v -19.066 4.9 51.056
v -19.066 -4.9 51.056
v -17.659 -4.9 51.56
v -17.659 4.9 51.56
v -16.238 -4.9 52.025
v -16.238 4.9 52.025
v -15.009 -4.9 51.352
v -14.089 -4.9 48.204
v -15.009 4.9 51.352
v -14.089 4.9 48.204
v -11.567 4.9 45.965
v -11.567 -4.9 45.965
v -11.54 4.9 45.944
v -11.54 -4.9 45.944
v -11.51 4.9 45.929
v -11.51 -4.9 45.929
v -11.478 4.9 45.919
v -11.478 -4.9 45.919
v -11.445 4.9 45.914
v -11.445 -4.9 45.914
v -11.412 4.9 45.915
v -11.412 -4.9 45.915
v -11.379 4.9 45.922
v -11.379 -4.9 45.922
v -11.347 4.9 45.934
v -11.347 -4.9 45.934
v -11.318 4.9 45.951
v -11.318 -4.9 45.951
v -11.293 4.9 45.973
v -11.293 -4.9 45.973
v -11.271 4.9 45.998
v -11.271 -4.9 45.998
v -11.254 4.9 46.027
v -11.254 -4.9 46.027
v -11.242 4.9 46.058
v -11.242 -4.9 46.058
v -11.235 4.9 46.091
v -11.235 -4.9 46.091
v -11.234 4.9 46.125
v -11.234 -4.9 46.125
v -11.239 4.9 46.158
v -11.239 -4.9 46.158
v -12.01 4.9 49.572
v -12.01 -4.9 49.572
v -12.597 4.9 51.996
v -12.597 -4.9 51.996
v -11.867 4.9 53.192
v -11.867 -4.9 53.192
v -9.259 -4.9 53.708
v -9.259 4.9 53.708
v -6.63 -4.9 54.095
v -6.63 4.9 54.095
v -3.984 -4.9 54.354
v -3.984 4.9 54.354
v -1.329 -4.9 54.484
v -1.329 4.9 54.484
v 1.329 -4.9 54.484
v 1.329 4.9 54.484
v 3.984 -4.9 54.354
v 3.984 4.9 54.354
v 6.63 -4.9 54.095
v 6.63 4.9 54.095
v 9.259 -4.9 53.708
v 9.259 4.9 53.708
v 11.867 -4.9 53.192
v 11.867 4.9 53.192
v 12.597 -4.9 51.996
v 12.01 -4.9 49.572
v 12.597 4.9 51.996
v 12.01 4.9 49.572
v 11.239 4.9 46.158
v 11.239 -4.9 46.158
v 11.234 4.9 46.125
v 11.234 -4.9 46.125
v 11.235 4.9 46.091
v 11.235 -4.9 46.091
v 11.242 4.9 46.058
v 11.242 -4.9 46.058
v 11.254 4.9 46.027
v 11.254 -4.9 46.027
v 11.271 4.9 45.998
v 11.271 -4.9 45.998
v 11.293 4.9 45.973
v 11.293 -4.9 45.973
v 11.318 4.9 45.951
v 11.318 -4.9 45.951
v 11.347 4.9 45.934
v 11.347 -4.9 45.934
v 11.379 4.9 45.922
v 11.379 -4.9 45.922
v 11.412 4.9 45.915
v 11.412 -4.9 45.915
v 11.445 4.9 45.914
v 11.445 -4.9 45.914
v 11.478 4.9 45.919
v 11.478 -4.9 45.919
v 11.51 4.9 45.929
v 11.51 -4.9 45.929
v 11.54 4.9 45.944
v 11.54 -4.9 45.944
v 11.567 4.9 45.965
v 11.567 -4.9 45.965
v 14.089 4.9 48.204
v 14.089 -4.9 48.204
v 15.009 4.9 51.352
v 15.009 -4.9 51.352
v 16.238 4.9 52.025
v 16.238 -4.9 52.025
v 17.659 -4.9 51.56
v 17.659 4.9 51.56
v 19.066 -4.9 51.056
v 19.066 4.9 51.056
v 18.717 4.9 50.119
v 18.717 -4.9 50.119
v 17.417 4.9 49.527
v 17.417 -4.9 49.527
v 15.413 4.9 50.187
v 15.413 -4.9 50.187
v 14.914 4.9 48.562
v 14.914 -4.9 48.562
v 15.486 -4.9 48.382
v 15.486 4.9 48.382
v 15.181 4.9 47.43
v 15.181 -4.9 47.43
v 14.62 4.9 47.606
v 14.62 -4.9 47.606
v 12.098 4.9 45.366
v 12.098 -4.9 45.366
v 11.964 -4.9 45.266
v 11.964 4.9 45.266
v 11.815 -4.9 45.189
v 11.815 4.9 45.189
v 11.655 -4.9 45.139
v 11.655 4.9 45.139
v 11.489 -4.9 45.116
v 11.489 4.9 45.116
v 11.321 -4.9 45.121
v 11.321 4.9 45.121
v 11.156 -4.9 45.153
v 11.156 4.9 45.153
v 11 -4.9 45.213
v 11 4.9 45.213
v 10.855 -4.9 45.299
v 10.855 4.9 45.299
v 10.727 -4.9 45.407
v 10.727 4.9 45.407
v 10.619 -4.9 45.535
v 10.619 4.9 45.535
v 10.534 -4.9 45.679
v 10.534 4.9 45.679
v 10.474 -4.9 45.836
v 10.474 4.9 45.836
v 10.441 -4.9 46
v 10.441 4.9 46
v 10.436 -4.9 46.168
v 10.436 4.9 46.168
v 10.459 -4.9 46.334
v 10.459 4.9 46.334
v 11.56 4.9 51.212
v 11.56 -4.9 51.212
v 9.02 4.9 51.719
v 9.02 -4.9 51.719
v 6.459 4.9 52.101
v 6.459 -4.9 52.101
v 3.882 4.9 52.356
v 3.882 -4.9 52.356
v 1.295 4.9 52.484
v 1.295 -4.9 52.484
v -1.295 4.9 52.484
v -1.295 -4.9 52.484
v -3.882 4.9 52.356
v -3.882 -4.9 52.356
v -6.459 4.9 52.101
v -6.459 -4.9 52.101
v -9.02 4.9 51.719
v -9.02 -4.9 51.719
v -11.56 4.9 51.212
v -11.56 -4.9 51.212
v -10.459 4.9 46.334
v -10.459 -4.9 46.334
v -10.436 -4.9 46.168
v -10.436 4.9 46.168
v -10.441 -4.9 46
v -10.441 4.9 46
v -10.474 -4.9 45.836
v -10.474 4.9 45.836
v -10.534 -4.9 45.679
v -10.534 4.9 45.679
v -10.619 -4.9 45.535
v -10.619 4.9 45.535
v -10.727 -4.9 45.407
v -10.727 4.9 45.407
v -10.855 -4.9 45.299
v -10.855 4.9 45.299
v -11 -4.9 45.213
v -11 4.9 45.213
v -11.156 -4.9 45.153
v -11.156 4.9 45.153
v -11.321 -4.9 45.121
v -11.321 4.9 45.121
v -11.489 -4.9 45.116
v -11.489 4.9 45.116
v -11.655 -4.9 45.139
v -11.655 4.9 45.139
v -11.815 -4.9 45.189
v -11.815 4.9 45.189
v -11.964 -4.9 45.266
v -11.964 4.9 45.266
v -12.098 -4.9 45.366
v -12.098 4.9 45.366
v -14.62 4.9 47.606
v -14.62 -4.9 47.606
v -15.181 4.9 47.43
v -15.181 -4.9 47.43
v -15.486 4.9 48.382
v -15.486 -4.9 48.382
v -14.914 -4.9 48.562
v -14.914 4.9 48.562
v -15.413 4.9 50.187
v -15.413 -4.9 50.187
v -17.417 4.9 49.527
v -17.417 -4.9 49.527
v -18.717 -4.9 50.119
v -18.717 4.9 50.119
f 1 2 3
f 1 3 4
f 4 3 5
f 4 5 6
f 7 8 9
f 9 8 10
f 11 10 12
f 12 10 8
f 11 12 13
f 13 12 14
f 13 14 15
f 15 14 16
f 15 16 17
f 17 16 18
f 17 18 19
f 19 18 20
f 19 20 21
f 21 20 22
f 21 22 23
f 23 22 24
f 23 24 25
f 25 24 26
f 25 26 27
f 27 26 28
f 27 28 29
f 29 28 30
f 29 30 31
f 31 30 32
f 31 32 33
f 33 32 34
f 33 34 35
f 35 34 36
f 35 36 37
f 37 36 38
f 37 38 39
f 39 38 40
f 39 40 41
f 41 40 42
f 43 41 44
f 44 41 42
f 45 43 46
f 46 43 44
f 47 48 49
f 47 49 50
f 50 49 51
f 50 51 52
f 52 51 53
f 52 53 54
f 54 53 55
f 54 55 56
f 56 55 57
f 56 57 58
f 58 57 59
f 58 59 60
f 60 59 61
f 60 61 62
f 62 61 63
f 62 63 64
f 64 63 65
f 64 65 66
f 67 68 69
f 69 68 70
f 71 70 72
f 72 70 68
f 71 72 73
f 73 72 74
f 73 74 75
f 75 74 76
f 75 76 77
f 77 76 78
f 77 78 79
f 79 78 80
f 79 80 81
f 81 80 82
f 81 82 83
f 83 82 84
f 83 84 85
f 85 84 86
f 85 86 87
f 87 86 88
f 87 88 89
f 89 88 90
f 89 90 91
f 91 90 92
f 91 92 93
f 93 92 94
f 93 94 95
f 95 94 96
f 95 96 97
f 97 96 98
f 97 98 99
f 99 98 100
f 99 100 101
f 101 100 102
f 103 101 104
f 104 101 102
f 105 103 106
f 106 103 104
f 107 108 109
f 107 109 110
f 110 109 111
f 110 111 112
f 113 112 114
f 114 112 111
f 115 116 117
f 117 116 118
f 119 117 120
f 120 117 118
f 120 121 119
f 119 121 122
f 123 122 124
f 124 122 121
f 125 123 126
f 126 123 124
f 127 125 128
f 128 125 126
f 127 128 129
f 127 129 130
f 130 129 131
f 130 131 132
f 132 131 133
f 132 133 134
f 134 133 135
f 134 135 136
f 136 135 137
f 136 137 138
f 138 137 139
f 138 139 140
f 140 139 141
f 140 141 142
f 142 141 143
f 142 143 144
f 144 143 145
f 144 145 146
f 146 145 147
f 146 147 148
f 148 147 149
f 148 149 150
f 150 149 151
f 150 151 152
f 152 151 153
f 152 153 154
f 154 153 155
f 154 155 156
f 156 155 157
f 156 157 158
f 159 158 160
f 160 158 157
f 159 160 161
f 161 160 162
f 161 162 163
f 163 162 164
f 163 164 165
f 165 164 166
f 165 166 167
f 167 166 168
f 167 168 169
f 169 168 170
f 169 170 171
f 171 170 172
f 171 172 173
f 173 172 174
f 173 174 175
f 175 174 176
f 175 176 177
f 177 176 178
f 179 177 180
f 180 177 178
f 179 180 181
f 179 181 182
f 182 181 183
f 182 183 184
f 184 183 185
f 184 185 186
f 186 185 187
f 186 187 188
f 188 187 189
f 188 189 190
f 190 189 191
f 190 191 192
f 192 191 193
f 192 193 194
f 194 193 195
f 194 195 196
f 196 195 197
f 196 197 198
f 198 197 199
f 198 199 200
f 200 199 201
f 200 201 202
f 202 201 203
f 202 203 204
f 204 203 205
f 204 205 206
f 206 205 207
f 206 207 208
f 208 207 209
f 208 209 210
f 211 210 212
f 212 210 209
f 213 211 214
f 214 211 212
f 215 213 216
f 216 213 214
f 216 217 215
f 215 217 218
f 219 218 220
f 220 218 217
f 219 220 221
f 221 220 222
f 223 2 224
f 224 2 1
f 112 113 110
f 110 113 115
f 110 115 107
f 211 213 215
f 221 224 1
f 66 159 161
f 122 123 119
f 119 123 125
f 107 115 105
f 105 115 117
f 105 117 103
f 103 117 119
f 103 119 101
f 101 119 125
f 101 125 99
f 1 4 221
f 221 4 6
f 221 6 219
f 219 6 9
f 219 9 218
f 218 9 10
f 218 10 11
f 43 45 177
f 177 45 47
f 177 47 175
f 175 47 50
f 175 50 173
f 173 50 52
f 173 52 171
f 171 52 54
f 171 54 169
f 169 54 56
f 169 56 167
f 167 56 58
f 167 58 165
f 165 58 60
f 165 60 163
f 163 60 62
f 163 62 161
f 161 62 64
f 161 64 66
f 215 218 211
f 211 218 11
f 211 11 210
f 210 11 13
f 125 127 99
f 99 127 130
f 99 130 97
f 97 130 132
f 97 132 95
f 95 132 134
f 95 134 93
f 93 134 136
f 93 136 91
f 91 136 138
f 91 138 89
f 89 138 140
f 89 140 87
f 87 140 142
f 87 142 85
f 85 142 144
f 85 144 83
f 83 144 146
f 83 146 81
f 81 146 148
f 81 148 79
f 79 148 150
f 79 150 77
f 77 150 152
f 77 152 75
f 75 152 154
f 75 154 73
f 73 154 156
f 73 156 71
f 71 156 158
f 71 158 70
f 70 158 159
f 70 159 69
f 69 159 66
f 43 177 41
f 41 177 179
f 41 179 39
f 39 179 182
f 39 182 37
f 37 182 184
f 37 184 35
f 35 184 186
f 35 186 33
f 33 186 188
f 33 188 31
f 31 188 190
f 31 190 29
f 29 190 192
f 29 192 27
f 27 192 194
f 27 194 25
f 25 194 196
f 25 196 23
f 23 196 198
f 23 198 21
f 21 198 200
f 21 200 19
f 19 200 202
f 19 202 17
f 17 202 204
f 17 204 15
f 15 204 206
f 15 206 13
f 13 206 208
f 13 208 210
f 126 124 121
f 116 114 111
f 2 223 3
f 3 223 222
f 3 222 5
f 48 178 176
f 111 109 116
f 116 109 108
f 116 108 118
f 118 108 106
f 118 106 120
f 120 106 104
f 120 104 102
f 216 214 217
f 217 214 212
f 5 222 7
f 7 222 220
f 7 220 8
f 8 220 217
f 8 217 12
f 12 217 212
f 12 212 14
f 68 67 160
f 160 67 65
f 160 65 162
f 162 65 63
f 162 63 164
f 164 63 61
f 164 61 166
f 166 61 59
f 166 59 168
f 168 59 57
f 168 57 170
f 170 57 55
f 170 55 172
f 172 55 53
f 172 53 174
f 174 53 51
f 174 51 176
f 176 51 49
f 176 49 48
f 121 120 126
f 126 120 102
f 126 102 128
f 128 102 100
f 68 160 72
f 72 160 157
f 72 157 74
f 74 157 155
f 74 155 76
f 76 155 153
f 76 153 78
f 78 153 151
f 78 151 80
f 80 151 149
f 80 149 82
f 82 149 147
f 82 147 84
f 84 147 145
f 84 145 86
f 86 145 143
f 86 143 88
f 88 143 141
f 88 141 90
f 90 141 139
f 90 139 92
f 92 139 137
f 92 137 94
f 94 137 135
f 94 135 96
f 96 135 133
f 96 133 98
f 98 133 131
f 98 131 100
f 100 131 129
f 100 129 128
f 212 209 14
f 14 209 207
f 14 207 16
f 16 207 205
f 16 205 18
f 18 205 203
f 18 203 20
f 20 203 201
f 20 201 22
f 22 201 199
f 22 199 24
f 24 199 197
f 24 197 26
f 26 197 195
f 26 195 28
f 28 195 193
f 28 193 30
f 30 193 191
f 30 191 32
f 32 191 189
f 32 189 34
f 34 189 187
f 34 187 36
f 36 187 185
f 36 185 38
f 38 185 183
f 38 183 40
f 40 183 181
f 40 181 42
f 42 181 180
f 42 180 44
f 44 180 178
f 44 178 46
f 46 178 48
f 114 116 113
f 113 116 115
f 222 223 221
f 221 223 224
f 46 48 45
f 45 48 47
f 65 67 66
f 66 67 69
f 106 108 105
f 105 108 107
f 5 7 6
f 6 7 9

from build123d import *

# Parameters (mm, degrees)
EXTRUDE_1_DEPTH = 4.9
CHAMFER_1_SIZE  = 1


with BuildPart() as part:
    # Эскиз2 → Бобышка-Вытянуть1 (new, symmetric)
    with BuildSketch(Plane(origin=(0, 0, 0), x_dir=(1, 0, 0), z_dir=(0, 1, 0))):
        with BuildLine():
            Line((-19.066440629, -51.056055877), (-18.366754734, -49.182439148))
            ThreePointArc((-18.366754734, -49.182439148), (-16.897260285, -49.706464317), (-15.412844037, -50.186594213))
            Line((-15.412844037, -50.186594213), (-14.972477064, -48.752691521))
            Line((-14.972477064, -48.752691521), (-14.913761468, -48.561504496))
            ThreePointArc((-14.913761468, -48.561504496), (-15.200281945, -48.472584301), (-15.486272306, -48.381973607))
            Line((-15.486272306, -48.381973607), (-15.181424426, -47.429572551))
            Line((-15.181424426, -47.429572551), (-14.620183486, -47.605569368))
            Line((-14.620183486, -47.605569368), (-12.098110765, -45.366305195))
            ThreePointArc((-12.098110765, -45.366305195), (-10.925741151, -45.252992376), (-10.458715596, -46.334277464))
            Line((-10.458715596, -46.334277464), (-11.229357798, -49.748382119))
            Line((-11.229357798, -49.748382119), (-11.559633028, -51.211569828))
            ThreePointArc((-11.559633028, -51.211569828), (0, -52.5), (11.559633028, -51.211569828))
            Line((11.559633028, -51.211569828), (11.229357798, -49.748382119))
            Line((11.229357798, -49.748382119), (10.458715596, -46.334277464))
            ThreePointArc((10.458715596, -46.334277464), (10.925741151, -45.252992376), (12.098110765, -45.366305195))
            Line((12.098110765, -45.366305195), (14.620183486, -47.605569368))
            Line((14.620183486, -47.605569368), (15.181424426, -47.429572551))
            Line((15.181424426, -47.429572551), (15.486272306, -48.381973607))
            ThreePointArc((15.486272306, -48.381973607), (15.200281945, -48.472584301), (14.913761468, -48.561504496))
            Line((14.913761468, -48.561504496), (14.972477064, -48.752691521))
            Line((14.972477064, -48.752691521), (15.412844037, -50.186594213))
            ThreePointArc((15.412844037, -50.186594213), (16.897260285, -49.706464317), (18.366754734, -49.182439148))
            Line((18.366754734, -49.182439148), (19.066440629, -51.056055877))
            ThreePointArc((19.066440629, -51.056055877), (17.189479987, -51.718195809), (15.289593803, -52.311359391))
            Line((15.289593803, -52.311359391), (14.089034129, -48.203800394))
            Line((14.089034129, -48.203800394), (11.566961408, -45.964536221))
            ThreePointArc((11.566961408, -45.964536221), (11.332487486, -45.941873657), (11.239082375, -46.158130675))
            Line((11.239082375, -46.158130675), (12.009724576, -49.57223533))
            Line((12.009724576, -49.57223533), (12.8323427, -52.967735281))
            ThreePointArc((12.8323427, -52.967735281), (0, -54.5), (-12.8323427, -52.967735281))
            Line((-12.8323427, -52.967735281), (-12.009724576, -49.57223533))
            Line((-12.009724576, -49.57223533), (-11.239082375, -46.158130675))
            ThreePointArc((-11.239082375, -46.158130675), (-11.332487486, -45.941873657), (-11.566961408, -45.964536221))
            Line((-11.566961408, -45.964536221), (-14.089034129, -48.203800394))
            Line((-14.089034129, -48.203800394), (-15.289593803, -52.311359391))
            ThreePointArc((-15.289593803, -52.311359391), (-17.189479987, -51.718195809), (-19.066440629, -51.056055877))
        make_face()
    extrude(amount=EXTRUDE_1_DEPTH, both=True)

    # Фаска1
    # the kernel refuses this chamfer: 1 mm, written as the material it takes off along each edge
    with BuildSketch(Plane(origin=(-18.366754734, 7.496724976, 49.182439148), x_dir=(0.9401293921516592, 0, 0.3408177313646573), z_dir=(0, -1, 0))) as chamfer_1_piece_1:
        with BuildLine():
            Line((1.009757262, 0), (-CHAMFER_1_SIZE * 0.00961673582767, CHAMFER_1_SIZE * 0.999953758127))
            Line((-CHAMFER_1_SIZE * 0.00961673582767, CHAMFER_1_SIZE * 0.999953758127), (0, 0))
            ThreePointArc((0, 0), (0.519160584, 0.002425756), (1.009757262, 0))
        make_face()
    extrude(amount=14.993449951, mode=Mode.SUBTRACT)
    with BuildSketch(Plane(origin=(18.366754734, 7.496724976, 49.182439148), x_dir=(0.34984294732251126, 0, 0.9368083647196467), z_dir=(0, -1, 0))) as chamfer_1_piece_2:
        with BuildLine():
            Line((CHAMFER_1_SIZE, 0), (-0.009710569, 1.009710569))
            ThreePointArc((-0.009710569, 1.009710569), (-0.002566987, 0.519159905), (0, 0))
            Line((0, 0), (CHAMFER_1_SIZE, 0))
        make_face()
    extrude(amount=14.993449951, mode=Mode.SUBTRACT)
    with BuildSketch(Plane(origin=(15.289593803, 7.471682988, 52.311359391), x_dir=(-0.2805430055685125, 0, -0.9598414567138605), z_dir=(0, -1, 0))) as chamfer_1_piece_3:
        with BuildLine():
            Line((CHAMFER_1_SIZE, 0), (0.009010472, 0.990989528))
            ThreePointArc((0.009010472, 0.990989528), (0.002381843, 0.509524531), (0, 0))
            Line((0, 0), (CHAMFER_1_SIZE, 0))
        make_face()
    extrude(amount=14.943365976, mode=Mode.SUBTRACT)
    with BuildSketch(Plane(origin=(12.8323427, 7.471682988, 52.967735281), x_dir=(-0.9739856496022864, 0, 0.22660969610502585), z_dir=(0, -1, 0)), Plane(origin=(-15.289593803, 7.471682988, 52.311359391), x_dir=(-0.9572510798876259, 0, -0.2892583102591421), z_dir=(0, -1, 0))) as chamfer_1_piece_4:
        with BuildLine():
            Line((0.991030491, 0), (CHAMFER_1_SIZE * 0.00909202285035, CHAMFER_1_SIZE * 0.999958666706))
            Line((CHAMFER_1_SIZE * 0.00909202285035, CHAMFER_1_SIZE * 0.999958666706), (0, 0))
            ThreePointArc((0, 0), (0.509525126, -0.002250864), (0.991030491, 0))
        make_face()
    extrude(amount=14.943365976, mode=Mode.SUBTRACT)
    with BuildSketch(Plane(origin=(-12.8323427, -7.471682988, 52.967735281), x_dir=(0.23545582936194254, 0, -0.9718850510320034), z_dir=(0, 1, 0))) as chamfer_1_piece_5:
        with BuildLine():
            Line((CHAMFER_1_SIZE, 0), (0.009010472, -0.990989528))
            ThreePointArc((0.009010472, -0.990989528), (0.002381843, -0.509524531), (0, 0))
            Line((0, 0), (CHAMFER_1_SIZE, 0))
        make_face()
    extrude(amount=14.943365976, mode=Mode.SUBTRACT)


solid = part.part
